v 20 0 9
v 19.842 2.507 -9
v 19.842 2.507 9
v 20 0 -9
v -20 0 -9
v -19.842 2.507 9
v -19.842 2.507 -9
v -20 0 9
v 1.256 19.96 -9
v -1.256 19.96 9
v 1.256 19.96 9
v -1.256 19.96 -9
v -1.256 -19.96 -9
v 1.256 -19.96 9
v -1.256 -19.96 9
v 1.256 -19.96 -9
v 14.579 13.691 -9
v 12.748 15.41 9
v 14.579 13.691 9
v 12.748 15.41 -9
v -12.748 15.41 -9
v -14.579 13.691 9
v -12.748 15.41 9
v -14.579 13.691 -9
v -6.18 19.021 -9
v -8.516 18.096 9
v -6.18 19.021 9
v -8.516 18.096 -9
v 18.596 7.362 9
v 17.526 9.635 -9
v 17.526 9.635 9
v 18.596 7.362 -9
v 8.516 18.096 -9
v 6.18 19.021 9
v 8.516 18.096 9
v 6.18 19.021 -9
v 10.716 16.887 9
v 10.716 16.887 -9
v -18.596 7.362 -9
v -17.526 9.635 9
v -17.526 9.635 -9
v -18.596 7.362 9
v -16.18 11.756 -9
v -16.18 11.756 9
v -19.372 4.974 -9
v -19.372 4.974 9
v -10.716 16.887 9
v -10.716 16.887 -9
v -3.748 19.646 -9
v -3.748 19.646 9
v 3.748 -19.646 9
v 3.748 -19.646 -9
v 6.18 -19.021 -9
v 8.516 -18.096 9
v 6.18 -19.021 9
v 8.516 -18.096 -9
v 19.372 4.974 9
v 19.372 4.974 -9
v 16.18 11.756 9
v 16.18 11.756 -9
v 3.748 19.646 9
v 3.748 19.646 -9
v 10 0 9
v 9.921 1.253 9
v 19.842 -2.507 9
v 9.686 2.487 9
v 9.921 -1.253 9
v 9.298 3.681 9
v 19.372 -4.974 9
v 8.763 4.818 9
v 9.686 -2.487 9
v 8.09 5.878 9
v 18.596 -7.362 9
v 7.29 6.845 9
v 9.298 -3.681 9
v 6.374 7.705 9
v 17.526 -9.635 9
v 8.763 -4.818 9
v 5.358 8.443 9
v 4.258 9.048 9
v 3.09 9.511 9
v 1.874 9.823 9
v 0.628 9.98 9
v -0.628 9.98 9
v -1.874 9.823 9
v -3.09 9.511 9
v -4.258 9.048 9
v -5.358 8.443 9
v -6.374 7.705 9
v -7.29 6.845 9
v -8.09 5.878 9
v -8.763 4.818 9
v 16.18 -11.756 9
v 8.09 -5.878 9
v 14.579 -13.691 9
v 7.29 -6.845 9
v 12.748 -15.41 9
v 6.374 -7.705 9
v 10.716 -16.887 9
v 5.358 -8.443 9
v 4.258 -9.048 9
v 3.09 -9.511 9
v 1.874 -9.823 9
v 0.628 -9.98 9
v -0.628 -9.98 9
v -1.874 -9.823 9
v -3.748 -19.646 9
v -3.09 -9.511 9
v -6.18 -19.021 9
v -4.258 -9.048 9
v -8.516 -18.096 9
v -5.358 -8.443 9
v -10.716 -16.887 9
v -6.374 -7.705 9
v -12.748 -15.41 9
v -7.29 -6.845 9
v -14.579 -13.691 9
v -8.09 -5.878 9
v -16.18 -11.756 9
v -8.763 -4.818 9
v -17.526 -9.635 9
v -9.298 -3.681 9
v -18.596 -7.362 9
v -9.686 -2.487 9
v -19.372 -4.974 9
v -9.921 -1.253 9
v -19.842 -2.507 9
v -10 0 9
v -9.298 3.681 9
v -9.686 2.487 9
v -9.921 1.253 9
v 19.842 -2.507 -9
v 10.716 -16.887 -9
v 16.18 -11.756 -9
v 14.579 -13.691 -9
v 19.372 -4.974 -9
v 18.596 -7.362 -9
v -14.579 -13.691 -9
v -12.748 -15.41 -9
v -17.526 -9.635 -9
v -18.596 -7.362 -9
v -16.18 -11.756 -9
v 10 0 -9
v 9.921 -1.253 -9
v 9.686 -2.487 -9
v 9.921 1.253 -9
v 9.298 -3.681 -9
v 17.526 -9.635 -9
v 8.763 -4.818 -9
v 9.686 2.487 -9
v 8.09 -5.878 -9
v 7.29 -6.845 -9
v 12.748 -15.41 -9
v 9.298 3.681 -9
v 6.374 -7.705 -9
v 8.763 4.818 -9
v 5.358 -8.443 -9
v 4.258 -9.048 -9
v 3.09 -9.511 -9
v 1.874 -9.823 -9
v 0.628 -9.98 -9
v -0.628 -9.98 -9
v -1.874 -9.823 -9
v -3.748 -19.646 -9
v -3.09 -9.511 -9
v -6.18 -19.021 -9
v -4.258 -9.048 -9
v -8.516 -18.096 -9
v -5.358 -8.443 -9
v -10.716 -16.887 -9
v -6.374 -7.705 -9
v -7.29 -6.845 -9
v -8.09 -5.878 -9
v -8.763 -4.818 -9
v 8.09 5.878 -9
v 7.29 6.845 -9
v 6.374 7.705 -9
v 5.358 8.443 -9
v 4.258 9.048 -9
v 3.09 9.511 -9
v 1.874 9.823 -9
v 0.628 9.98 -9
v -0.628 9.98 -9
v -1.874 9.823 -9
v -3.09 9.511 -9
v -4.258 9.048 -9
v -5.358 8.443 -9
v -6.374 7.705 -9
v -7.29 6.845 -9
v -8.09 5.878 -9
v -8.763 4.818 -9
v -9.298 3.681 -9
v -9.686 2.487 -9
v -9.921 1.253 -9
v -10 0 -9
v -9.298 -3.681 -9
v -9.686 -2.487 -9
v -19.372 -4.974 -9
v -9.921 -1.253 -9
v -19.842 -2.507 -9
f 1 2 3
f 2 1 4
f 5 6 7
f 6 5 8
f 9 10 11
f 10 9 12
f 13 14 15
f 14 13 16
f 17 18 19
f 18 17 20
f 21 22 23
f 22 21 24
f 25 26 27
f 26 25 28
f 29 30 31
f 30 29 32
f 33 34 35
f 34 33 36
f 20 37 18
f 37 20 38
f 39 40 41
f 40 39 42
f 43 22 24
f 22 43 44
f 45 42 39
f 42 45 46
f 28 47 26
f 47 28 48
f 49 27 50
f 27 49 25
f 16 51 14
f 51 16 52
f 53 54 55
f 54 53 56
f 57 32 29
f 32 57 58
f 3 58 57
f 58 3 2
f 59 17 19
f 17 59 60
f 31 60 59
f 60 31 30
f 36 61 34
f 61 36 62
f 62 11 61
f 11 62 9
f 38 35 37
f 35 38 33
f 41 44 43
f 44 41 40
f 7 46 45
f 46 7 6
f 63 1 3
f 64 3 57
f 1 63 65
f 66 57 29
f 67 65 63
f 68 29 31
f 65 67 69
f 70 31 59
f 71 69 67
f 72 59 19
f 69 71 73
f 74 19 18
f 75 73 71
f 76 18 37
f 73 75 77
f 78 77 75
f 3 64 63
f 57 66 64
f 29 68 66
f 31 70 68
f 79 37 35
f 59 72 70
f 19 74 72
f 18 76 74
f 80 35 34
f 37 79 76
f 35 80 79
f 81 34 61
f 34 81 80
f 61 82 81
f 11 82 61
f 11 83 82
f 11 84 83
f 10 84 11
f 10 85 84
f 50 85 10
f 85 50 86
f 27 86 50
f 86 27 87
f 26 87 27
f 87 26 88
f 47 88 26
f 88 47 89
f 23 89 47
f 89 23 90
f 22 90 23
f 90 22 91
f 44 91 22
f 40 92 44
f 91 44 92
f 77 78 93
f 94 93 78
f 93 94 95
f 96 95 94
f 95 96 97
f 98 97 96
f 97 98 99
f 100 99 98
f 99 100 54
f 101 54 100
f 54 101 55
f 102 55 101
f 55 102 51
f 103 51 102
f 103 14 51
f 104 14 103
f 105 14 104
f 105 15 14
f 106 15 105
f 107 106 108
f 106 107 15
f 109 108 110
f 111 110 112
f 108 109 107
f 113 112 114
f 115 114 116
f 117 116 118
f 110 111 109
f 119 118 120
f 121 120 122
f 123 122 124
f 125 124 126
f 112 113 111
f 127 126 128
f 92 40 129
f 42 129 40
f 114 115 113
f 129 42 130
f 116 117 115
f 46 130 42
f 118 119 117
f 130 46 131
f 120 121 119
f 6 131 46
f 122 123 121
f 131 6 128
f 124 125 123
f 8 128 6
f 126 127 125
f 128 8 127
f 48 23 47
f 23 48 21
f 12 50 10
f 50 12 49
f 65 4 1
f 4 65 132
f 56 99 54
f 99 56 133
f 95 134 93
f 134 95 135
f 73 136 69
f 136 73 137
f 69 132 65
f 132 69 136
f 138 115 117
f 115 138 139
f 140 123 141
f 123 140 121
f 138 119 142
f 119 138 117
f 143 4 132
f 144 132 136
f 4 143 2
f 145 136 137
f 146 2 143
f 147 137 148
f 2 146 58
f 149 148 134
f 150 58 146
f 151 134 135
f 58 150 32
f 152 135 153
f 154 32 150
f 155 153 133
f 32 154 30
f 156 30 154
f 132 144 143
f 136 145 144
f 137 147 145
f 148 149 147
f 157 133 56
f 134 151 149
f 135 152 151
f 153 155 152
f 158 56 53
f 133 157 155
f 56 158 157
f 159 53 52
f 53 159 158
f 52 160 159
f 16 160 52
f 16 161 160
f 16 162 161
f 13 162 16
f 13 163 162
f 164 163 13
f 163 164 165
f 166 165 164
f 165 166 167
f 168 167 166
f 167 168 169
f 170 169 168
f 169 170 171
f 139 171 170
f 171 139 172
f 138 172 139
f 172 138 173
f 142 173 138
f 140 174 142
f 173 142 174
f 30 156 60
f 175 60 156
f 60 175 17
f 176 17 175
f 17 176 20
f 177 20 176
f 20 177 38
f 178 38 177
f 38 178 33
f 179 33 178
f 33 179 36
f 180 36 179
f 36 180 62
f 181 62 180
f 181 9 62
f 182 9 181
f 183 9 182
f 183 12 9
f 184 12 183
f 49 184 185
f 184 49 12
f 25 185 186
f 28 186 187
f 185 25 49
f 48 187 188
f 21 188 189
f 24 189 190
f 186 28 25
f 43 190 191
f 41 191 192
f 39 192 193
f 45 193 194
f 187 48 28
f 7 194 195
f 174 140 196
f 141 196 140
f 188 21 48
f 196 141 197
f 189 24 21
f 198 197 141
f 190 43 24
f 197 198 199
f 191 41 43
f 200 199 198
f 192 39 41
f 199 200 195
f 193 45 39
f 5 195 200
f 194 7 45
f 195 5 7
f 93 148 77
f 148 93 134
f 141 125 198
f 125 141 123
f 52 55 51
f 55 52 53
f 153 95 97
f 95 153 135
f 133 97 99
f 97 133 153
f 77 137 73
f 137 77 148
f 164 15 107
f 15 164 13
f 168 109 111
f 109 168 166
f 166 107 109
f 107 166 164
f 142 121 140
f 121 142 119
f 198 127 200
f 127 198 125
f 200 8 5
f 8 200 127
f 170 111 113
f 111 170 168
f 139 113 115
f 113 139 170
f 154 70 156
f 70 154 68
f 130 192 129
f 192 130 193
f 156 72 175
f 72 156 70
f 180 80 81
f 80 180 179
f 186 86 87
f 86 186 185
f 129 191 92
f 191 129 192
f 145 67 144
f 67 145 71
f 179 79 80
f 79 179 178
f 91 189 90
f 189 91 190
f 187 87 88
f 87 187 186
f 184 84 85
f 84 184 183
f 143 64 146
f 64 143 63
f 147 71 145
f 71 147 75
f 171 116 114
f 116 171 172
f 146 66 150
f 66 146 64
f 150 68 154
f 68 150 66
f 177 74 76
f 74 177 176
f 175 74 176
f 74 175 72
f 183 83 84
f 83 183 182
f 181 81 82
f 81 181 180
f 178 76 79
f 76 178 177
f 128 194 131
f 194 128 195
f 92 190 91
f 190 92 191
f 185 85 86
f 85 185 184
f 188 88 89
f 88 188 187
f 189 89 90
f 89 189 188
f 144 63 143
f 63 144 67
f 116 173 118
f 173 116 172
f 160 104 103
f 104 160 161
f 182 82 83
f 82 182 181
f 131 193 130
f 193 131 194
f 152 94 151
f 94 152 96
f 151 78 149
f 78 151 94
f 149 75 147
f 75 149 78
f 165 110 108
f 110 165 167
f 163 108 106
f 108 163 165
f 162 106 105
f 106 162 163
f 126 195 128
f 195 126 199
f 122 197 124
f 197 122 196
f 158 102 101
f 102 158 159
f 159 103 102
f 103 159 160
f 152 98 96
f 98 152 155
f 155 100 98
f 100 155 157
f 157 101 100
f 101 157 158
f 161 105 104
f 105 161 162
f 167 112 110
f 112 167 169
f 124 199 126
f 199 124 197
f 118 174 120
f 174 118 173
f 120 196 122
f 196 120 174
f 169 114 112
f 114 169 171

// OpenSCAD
$fn = 50;


difference() {
	union() {
		translate(v = [0, 0, -9.0000000000]) {
			cylinder(h = 18, r = 20.0000000000);
		}
	}
	union() {
		translate(v = [0, 0, -100.0000000000]) {
			cylinder(h = 200, r = 10);
		}
	}
}
